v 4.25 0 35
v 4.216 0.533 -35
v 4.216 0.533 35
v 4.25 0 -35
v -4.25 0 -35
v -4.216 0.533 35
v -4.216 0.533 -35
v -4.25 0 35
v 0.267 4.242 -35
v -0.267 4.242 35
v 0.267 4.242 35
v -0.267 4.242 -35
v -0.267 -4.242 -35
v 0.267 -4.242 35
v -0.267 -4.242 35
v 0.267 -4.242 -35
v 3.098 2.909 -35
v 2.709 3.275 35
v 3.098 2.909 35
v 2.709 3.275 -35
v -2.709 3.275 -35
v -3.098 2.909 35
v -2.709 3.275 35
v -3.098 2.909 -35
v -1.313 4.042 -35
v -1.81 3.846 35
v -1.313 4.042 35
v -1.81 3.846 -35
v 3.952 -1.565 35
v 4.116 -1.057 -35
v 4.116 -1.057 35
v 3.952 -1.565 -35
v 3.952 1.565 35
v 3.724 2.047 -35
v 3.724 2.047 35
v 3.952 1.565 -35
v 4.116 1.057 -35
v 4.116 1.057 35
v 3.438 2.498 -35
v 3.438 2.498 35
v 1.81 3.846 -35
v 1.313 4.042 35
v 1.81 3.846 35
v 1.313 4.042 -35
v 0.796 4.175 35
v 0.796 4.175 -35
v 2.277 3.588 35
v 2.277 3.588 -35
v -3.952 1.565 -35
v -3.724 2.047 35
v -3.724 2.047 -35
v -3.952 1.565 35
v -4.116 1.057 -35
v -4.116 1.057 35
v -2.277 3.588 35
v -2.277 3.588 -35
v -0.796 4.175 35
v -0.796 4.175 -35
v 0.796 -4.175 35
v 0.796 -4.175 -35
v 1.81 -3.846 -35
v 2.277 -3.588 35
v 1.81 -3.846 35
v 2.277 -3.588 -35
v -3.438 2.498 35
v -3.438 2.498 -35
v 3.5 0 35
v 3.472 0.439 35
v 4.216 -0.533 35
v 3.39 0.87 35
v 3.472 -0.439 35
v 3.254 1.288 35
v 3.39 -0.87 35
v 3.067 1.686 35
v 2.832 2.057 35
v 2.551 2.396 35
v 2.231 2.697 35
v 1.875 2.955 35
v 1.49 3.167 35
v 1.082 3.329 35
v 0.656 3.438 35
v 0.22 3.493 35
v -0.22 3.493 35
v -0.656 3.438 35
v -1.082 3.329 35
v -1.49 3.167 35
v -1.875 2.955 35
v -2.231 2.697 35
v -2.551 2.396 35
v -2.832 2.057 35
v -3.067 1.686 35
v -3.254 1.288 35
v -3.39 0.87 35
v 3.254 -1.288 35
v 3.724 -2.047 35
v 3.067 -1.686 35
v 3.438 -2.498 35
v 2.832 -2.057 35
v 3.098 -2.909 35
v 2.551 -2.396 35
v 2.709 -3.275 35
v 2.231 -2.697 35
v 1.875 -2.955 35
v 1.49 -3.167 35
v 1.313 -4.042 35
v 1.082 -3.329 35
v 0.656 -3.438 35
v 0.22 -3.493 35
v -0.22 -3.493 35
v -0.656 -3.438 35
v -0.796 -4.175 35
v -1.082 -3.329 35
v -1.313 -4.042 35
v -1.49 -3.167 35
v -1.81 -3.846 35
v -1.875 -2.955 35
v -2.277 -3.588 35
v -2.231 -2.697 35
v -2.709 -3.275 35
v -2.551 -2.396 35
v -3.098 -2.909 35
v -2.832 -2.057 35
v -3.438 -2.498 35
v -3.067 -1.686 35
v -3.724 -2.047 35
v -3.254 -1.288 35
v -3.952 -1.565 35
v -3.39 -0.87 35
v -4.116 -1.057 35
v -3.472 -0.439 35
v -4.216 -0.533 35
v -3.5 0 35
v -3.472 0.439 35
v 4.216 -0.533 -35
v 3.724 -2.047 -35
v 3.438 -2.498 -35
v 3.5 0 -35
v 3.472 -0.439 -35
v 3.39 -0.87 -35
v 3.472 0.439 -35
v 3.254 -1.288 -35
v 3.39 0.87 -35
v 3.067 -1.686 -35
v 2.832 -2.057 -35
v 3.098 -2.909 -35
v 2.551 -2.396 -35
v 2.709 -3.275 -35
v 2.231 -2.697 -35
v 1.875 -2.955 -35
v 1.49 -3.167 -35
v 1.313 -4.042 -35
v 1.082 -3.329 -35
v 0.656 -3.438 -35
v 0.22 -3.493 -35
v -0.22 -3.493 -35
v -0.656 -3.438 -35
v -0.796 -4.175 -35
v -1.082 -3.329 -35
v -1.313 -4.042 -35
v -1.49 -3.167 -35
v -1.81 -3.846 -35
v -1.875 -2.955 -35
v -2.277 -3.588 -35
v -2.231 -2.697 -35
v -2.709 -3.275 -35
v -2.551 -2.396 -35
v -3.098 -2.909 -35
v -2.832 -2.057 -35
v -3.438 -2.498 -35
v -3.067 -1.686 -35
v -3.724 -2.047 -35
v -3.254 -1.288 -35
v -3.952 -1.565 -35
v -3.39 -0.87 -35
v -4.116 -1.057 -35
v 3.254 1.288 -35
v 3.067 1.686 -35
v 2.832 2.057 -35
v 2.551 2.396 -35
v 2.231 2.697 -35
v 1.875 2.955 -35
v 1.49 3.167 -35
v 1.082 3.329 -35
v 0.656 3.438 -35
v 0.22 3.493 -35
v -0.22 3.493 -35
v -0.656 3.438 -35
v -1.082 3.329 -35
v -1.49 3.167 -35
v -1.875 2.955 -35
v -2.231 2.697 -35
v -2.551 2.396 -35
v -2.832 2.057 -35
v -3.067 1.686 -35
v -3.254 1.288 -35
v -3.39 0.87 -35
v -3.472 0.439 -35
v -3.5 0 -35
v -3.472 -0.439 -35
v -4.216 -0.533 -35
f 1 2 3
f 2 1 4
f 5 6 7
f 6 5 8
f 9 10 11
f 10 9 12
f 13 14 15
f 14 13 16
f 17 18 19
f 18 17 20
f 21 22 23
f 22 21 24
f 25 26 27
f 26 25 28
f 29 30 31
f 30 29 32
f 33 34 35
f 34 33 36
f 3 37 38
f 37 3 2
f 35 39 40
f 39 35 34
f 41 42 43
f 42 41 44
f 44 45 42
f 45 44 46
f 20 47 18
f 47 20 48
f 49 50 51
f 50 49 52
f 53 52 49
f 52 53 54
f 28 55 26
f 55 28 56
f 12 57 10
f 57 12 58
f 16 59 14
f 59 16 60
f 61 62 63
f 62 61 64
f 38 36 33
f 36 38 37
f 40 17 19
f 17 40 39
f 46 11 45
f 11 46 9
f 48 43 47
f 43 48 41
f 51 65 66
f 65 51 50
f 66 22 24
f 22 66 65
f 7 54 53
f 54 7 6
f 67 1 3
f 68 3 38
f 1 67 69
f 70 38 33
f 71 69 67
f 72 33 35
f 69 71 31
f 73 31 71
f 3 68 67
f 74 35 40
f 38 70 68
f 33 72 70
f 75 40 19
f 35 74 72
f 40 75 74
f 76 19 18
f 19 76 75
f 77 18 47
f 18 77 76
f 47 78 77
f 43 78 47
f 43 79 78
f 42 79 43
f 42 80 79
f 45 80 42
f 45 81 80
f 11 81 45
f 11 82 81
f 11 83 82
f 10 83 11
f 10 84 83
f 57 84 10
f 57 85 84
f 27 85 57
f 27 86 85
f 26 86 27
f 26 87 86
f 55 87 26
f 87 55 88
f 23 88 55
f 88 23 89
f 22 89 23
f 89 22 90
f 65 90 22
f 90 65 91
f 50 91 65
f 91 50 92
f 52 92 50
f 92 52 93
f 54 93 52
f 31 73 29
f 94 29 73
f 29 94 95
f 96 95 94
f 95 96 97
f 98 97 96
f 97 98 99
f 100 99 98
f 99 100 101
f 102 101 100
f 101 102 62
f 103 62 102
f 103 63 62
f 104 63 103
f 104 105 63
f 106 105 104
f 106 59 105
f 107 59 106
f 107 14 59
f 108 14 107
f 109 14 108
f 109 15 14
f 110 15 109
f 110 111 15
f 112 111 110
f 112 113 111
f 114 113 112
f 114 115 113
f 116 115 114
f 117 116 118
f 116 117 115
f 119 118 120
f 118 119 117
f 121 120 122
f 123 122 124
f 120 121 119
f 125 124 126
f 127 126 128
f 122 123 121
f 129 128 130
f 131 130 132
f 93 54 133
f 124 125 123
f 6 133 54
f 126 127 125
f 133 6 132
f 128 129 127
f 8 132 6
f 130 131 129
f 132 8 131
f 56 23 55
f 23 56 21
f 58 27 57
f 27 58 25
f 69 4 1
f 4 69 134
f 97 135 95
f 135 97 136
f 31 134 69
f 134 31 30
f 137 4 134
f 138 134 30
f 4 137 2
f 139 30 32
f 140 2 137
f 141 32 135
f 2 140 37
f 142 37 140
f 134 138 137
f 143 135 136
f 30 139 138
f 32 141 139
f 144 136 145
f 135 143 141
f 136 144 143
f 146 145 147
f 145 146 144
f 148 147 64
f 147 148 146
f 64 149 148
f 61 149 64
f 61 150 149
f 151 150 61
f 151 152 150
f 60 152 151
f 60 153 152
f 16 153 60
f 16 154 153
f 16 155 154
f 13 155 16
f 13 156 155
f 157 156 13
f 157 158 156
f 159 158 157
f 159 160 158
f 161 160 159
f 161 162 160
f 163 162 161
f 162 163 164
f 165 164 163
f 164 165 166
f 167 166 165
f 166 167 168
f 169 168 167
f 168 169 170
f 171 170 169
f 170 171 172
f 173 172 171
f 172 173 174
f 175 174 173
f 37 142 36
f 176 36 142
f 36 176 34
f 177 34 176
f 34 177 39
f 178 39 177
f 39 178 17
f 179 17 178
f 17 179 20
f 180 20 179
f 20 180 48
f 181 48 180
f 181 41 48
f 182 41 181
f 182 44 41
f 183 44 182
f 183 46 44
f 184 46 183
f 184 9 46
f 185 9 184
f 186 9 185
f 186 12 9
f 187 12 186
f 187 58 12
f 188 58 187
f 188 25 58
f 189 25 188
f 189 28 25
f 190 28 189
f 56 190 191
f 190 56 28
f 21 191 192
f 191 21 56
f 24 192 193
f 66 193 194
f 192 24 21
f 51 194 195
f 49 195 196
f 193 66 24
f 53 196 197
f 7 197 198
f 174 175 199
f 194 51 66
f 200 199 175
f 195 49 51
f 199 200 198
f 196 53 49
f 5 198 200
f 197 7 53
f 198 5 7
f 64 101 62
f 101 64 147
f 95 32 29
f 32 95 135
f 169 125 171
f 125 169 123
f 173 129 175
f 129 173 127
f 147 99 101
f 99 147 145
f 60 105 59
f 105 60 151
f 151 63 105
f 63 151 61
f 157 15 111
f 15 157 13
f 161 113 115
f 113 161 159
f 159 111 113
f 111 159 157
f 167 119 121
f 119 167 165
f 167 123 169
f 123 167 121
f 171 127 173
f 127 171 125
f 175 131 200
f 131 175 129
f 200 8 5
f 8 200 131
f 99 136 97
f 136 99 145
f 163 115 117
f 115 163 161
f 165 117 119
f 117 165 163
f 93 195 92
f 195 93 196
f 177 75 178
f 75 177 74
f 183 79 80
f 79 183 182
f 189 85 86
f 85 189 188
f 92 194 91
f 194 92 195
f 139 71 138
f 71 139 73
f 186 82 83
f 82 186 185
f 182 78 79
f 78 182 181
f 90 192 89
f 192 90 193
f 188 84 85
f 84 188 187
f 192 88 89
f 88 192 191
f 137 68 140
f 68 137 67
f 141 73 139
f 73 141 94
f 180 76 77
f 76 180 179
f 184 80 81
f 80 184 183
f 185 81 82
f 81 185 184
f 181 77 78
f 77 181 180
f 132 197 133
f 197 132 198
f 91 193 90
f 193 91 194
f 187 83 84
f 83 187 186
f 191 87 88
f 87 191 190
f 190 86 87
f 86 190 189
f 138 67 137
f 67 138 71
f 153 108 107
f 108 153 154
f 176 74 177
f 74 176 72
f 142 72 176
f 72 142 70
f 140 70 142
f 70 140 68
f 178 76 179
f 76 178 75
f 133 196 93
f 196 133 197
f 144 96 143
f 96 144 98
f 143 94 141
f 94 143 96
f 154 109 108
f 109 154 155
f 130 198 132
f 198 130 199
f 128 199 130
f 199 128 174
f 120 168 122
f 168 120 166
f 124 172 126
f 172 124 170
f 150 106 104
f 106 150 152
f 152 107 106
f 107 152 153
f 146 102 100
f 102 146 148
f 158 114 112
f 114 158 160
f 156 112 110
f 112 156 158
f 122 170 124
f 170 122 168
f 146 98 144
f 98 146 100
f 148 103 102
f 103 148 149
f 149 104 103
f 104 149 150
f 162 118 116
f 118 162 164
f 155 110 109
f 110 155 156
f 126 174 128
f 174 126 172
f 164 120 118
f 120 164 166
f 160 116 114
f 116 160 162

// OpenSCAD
$fn = 50;


difference() {
	union() {
		translate(v = [0, 0, -35.0000000000]) {
			cylinder(h = 70, r = 4.2500000000);
		}
	}
	union() {
		translate(v = [0, 0, -100.0000000000]) {
			cylinder(h = 200, r = 3.5000000000);
		}
	}
}
